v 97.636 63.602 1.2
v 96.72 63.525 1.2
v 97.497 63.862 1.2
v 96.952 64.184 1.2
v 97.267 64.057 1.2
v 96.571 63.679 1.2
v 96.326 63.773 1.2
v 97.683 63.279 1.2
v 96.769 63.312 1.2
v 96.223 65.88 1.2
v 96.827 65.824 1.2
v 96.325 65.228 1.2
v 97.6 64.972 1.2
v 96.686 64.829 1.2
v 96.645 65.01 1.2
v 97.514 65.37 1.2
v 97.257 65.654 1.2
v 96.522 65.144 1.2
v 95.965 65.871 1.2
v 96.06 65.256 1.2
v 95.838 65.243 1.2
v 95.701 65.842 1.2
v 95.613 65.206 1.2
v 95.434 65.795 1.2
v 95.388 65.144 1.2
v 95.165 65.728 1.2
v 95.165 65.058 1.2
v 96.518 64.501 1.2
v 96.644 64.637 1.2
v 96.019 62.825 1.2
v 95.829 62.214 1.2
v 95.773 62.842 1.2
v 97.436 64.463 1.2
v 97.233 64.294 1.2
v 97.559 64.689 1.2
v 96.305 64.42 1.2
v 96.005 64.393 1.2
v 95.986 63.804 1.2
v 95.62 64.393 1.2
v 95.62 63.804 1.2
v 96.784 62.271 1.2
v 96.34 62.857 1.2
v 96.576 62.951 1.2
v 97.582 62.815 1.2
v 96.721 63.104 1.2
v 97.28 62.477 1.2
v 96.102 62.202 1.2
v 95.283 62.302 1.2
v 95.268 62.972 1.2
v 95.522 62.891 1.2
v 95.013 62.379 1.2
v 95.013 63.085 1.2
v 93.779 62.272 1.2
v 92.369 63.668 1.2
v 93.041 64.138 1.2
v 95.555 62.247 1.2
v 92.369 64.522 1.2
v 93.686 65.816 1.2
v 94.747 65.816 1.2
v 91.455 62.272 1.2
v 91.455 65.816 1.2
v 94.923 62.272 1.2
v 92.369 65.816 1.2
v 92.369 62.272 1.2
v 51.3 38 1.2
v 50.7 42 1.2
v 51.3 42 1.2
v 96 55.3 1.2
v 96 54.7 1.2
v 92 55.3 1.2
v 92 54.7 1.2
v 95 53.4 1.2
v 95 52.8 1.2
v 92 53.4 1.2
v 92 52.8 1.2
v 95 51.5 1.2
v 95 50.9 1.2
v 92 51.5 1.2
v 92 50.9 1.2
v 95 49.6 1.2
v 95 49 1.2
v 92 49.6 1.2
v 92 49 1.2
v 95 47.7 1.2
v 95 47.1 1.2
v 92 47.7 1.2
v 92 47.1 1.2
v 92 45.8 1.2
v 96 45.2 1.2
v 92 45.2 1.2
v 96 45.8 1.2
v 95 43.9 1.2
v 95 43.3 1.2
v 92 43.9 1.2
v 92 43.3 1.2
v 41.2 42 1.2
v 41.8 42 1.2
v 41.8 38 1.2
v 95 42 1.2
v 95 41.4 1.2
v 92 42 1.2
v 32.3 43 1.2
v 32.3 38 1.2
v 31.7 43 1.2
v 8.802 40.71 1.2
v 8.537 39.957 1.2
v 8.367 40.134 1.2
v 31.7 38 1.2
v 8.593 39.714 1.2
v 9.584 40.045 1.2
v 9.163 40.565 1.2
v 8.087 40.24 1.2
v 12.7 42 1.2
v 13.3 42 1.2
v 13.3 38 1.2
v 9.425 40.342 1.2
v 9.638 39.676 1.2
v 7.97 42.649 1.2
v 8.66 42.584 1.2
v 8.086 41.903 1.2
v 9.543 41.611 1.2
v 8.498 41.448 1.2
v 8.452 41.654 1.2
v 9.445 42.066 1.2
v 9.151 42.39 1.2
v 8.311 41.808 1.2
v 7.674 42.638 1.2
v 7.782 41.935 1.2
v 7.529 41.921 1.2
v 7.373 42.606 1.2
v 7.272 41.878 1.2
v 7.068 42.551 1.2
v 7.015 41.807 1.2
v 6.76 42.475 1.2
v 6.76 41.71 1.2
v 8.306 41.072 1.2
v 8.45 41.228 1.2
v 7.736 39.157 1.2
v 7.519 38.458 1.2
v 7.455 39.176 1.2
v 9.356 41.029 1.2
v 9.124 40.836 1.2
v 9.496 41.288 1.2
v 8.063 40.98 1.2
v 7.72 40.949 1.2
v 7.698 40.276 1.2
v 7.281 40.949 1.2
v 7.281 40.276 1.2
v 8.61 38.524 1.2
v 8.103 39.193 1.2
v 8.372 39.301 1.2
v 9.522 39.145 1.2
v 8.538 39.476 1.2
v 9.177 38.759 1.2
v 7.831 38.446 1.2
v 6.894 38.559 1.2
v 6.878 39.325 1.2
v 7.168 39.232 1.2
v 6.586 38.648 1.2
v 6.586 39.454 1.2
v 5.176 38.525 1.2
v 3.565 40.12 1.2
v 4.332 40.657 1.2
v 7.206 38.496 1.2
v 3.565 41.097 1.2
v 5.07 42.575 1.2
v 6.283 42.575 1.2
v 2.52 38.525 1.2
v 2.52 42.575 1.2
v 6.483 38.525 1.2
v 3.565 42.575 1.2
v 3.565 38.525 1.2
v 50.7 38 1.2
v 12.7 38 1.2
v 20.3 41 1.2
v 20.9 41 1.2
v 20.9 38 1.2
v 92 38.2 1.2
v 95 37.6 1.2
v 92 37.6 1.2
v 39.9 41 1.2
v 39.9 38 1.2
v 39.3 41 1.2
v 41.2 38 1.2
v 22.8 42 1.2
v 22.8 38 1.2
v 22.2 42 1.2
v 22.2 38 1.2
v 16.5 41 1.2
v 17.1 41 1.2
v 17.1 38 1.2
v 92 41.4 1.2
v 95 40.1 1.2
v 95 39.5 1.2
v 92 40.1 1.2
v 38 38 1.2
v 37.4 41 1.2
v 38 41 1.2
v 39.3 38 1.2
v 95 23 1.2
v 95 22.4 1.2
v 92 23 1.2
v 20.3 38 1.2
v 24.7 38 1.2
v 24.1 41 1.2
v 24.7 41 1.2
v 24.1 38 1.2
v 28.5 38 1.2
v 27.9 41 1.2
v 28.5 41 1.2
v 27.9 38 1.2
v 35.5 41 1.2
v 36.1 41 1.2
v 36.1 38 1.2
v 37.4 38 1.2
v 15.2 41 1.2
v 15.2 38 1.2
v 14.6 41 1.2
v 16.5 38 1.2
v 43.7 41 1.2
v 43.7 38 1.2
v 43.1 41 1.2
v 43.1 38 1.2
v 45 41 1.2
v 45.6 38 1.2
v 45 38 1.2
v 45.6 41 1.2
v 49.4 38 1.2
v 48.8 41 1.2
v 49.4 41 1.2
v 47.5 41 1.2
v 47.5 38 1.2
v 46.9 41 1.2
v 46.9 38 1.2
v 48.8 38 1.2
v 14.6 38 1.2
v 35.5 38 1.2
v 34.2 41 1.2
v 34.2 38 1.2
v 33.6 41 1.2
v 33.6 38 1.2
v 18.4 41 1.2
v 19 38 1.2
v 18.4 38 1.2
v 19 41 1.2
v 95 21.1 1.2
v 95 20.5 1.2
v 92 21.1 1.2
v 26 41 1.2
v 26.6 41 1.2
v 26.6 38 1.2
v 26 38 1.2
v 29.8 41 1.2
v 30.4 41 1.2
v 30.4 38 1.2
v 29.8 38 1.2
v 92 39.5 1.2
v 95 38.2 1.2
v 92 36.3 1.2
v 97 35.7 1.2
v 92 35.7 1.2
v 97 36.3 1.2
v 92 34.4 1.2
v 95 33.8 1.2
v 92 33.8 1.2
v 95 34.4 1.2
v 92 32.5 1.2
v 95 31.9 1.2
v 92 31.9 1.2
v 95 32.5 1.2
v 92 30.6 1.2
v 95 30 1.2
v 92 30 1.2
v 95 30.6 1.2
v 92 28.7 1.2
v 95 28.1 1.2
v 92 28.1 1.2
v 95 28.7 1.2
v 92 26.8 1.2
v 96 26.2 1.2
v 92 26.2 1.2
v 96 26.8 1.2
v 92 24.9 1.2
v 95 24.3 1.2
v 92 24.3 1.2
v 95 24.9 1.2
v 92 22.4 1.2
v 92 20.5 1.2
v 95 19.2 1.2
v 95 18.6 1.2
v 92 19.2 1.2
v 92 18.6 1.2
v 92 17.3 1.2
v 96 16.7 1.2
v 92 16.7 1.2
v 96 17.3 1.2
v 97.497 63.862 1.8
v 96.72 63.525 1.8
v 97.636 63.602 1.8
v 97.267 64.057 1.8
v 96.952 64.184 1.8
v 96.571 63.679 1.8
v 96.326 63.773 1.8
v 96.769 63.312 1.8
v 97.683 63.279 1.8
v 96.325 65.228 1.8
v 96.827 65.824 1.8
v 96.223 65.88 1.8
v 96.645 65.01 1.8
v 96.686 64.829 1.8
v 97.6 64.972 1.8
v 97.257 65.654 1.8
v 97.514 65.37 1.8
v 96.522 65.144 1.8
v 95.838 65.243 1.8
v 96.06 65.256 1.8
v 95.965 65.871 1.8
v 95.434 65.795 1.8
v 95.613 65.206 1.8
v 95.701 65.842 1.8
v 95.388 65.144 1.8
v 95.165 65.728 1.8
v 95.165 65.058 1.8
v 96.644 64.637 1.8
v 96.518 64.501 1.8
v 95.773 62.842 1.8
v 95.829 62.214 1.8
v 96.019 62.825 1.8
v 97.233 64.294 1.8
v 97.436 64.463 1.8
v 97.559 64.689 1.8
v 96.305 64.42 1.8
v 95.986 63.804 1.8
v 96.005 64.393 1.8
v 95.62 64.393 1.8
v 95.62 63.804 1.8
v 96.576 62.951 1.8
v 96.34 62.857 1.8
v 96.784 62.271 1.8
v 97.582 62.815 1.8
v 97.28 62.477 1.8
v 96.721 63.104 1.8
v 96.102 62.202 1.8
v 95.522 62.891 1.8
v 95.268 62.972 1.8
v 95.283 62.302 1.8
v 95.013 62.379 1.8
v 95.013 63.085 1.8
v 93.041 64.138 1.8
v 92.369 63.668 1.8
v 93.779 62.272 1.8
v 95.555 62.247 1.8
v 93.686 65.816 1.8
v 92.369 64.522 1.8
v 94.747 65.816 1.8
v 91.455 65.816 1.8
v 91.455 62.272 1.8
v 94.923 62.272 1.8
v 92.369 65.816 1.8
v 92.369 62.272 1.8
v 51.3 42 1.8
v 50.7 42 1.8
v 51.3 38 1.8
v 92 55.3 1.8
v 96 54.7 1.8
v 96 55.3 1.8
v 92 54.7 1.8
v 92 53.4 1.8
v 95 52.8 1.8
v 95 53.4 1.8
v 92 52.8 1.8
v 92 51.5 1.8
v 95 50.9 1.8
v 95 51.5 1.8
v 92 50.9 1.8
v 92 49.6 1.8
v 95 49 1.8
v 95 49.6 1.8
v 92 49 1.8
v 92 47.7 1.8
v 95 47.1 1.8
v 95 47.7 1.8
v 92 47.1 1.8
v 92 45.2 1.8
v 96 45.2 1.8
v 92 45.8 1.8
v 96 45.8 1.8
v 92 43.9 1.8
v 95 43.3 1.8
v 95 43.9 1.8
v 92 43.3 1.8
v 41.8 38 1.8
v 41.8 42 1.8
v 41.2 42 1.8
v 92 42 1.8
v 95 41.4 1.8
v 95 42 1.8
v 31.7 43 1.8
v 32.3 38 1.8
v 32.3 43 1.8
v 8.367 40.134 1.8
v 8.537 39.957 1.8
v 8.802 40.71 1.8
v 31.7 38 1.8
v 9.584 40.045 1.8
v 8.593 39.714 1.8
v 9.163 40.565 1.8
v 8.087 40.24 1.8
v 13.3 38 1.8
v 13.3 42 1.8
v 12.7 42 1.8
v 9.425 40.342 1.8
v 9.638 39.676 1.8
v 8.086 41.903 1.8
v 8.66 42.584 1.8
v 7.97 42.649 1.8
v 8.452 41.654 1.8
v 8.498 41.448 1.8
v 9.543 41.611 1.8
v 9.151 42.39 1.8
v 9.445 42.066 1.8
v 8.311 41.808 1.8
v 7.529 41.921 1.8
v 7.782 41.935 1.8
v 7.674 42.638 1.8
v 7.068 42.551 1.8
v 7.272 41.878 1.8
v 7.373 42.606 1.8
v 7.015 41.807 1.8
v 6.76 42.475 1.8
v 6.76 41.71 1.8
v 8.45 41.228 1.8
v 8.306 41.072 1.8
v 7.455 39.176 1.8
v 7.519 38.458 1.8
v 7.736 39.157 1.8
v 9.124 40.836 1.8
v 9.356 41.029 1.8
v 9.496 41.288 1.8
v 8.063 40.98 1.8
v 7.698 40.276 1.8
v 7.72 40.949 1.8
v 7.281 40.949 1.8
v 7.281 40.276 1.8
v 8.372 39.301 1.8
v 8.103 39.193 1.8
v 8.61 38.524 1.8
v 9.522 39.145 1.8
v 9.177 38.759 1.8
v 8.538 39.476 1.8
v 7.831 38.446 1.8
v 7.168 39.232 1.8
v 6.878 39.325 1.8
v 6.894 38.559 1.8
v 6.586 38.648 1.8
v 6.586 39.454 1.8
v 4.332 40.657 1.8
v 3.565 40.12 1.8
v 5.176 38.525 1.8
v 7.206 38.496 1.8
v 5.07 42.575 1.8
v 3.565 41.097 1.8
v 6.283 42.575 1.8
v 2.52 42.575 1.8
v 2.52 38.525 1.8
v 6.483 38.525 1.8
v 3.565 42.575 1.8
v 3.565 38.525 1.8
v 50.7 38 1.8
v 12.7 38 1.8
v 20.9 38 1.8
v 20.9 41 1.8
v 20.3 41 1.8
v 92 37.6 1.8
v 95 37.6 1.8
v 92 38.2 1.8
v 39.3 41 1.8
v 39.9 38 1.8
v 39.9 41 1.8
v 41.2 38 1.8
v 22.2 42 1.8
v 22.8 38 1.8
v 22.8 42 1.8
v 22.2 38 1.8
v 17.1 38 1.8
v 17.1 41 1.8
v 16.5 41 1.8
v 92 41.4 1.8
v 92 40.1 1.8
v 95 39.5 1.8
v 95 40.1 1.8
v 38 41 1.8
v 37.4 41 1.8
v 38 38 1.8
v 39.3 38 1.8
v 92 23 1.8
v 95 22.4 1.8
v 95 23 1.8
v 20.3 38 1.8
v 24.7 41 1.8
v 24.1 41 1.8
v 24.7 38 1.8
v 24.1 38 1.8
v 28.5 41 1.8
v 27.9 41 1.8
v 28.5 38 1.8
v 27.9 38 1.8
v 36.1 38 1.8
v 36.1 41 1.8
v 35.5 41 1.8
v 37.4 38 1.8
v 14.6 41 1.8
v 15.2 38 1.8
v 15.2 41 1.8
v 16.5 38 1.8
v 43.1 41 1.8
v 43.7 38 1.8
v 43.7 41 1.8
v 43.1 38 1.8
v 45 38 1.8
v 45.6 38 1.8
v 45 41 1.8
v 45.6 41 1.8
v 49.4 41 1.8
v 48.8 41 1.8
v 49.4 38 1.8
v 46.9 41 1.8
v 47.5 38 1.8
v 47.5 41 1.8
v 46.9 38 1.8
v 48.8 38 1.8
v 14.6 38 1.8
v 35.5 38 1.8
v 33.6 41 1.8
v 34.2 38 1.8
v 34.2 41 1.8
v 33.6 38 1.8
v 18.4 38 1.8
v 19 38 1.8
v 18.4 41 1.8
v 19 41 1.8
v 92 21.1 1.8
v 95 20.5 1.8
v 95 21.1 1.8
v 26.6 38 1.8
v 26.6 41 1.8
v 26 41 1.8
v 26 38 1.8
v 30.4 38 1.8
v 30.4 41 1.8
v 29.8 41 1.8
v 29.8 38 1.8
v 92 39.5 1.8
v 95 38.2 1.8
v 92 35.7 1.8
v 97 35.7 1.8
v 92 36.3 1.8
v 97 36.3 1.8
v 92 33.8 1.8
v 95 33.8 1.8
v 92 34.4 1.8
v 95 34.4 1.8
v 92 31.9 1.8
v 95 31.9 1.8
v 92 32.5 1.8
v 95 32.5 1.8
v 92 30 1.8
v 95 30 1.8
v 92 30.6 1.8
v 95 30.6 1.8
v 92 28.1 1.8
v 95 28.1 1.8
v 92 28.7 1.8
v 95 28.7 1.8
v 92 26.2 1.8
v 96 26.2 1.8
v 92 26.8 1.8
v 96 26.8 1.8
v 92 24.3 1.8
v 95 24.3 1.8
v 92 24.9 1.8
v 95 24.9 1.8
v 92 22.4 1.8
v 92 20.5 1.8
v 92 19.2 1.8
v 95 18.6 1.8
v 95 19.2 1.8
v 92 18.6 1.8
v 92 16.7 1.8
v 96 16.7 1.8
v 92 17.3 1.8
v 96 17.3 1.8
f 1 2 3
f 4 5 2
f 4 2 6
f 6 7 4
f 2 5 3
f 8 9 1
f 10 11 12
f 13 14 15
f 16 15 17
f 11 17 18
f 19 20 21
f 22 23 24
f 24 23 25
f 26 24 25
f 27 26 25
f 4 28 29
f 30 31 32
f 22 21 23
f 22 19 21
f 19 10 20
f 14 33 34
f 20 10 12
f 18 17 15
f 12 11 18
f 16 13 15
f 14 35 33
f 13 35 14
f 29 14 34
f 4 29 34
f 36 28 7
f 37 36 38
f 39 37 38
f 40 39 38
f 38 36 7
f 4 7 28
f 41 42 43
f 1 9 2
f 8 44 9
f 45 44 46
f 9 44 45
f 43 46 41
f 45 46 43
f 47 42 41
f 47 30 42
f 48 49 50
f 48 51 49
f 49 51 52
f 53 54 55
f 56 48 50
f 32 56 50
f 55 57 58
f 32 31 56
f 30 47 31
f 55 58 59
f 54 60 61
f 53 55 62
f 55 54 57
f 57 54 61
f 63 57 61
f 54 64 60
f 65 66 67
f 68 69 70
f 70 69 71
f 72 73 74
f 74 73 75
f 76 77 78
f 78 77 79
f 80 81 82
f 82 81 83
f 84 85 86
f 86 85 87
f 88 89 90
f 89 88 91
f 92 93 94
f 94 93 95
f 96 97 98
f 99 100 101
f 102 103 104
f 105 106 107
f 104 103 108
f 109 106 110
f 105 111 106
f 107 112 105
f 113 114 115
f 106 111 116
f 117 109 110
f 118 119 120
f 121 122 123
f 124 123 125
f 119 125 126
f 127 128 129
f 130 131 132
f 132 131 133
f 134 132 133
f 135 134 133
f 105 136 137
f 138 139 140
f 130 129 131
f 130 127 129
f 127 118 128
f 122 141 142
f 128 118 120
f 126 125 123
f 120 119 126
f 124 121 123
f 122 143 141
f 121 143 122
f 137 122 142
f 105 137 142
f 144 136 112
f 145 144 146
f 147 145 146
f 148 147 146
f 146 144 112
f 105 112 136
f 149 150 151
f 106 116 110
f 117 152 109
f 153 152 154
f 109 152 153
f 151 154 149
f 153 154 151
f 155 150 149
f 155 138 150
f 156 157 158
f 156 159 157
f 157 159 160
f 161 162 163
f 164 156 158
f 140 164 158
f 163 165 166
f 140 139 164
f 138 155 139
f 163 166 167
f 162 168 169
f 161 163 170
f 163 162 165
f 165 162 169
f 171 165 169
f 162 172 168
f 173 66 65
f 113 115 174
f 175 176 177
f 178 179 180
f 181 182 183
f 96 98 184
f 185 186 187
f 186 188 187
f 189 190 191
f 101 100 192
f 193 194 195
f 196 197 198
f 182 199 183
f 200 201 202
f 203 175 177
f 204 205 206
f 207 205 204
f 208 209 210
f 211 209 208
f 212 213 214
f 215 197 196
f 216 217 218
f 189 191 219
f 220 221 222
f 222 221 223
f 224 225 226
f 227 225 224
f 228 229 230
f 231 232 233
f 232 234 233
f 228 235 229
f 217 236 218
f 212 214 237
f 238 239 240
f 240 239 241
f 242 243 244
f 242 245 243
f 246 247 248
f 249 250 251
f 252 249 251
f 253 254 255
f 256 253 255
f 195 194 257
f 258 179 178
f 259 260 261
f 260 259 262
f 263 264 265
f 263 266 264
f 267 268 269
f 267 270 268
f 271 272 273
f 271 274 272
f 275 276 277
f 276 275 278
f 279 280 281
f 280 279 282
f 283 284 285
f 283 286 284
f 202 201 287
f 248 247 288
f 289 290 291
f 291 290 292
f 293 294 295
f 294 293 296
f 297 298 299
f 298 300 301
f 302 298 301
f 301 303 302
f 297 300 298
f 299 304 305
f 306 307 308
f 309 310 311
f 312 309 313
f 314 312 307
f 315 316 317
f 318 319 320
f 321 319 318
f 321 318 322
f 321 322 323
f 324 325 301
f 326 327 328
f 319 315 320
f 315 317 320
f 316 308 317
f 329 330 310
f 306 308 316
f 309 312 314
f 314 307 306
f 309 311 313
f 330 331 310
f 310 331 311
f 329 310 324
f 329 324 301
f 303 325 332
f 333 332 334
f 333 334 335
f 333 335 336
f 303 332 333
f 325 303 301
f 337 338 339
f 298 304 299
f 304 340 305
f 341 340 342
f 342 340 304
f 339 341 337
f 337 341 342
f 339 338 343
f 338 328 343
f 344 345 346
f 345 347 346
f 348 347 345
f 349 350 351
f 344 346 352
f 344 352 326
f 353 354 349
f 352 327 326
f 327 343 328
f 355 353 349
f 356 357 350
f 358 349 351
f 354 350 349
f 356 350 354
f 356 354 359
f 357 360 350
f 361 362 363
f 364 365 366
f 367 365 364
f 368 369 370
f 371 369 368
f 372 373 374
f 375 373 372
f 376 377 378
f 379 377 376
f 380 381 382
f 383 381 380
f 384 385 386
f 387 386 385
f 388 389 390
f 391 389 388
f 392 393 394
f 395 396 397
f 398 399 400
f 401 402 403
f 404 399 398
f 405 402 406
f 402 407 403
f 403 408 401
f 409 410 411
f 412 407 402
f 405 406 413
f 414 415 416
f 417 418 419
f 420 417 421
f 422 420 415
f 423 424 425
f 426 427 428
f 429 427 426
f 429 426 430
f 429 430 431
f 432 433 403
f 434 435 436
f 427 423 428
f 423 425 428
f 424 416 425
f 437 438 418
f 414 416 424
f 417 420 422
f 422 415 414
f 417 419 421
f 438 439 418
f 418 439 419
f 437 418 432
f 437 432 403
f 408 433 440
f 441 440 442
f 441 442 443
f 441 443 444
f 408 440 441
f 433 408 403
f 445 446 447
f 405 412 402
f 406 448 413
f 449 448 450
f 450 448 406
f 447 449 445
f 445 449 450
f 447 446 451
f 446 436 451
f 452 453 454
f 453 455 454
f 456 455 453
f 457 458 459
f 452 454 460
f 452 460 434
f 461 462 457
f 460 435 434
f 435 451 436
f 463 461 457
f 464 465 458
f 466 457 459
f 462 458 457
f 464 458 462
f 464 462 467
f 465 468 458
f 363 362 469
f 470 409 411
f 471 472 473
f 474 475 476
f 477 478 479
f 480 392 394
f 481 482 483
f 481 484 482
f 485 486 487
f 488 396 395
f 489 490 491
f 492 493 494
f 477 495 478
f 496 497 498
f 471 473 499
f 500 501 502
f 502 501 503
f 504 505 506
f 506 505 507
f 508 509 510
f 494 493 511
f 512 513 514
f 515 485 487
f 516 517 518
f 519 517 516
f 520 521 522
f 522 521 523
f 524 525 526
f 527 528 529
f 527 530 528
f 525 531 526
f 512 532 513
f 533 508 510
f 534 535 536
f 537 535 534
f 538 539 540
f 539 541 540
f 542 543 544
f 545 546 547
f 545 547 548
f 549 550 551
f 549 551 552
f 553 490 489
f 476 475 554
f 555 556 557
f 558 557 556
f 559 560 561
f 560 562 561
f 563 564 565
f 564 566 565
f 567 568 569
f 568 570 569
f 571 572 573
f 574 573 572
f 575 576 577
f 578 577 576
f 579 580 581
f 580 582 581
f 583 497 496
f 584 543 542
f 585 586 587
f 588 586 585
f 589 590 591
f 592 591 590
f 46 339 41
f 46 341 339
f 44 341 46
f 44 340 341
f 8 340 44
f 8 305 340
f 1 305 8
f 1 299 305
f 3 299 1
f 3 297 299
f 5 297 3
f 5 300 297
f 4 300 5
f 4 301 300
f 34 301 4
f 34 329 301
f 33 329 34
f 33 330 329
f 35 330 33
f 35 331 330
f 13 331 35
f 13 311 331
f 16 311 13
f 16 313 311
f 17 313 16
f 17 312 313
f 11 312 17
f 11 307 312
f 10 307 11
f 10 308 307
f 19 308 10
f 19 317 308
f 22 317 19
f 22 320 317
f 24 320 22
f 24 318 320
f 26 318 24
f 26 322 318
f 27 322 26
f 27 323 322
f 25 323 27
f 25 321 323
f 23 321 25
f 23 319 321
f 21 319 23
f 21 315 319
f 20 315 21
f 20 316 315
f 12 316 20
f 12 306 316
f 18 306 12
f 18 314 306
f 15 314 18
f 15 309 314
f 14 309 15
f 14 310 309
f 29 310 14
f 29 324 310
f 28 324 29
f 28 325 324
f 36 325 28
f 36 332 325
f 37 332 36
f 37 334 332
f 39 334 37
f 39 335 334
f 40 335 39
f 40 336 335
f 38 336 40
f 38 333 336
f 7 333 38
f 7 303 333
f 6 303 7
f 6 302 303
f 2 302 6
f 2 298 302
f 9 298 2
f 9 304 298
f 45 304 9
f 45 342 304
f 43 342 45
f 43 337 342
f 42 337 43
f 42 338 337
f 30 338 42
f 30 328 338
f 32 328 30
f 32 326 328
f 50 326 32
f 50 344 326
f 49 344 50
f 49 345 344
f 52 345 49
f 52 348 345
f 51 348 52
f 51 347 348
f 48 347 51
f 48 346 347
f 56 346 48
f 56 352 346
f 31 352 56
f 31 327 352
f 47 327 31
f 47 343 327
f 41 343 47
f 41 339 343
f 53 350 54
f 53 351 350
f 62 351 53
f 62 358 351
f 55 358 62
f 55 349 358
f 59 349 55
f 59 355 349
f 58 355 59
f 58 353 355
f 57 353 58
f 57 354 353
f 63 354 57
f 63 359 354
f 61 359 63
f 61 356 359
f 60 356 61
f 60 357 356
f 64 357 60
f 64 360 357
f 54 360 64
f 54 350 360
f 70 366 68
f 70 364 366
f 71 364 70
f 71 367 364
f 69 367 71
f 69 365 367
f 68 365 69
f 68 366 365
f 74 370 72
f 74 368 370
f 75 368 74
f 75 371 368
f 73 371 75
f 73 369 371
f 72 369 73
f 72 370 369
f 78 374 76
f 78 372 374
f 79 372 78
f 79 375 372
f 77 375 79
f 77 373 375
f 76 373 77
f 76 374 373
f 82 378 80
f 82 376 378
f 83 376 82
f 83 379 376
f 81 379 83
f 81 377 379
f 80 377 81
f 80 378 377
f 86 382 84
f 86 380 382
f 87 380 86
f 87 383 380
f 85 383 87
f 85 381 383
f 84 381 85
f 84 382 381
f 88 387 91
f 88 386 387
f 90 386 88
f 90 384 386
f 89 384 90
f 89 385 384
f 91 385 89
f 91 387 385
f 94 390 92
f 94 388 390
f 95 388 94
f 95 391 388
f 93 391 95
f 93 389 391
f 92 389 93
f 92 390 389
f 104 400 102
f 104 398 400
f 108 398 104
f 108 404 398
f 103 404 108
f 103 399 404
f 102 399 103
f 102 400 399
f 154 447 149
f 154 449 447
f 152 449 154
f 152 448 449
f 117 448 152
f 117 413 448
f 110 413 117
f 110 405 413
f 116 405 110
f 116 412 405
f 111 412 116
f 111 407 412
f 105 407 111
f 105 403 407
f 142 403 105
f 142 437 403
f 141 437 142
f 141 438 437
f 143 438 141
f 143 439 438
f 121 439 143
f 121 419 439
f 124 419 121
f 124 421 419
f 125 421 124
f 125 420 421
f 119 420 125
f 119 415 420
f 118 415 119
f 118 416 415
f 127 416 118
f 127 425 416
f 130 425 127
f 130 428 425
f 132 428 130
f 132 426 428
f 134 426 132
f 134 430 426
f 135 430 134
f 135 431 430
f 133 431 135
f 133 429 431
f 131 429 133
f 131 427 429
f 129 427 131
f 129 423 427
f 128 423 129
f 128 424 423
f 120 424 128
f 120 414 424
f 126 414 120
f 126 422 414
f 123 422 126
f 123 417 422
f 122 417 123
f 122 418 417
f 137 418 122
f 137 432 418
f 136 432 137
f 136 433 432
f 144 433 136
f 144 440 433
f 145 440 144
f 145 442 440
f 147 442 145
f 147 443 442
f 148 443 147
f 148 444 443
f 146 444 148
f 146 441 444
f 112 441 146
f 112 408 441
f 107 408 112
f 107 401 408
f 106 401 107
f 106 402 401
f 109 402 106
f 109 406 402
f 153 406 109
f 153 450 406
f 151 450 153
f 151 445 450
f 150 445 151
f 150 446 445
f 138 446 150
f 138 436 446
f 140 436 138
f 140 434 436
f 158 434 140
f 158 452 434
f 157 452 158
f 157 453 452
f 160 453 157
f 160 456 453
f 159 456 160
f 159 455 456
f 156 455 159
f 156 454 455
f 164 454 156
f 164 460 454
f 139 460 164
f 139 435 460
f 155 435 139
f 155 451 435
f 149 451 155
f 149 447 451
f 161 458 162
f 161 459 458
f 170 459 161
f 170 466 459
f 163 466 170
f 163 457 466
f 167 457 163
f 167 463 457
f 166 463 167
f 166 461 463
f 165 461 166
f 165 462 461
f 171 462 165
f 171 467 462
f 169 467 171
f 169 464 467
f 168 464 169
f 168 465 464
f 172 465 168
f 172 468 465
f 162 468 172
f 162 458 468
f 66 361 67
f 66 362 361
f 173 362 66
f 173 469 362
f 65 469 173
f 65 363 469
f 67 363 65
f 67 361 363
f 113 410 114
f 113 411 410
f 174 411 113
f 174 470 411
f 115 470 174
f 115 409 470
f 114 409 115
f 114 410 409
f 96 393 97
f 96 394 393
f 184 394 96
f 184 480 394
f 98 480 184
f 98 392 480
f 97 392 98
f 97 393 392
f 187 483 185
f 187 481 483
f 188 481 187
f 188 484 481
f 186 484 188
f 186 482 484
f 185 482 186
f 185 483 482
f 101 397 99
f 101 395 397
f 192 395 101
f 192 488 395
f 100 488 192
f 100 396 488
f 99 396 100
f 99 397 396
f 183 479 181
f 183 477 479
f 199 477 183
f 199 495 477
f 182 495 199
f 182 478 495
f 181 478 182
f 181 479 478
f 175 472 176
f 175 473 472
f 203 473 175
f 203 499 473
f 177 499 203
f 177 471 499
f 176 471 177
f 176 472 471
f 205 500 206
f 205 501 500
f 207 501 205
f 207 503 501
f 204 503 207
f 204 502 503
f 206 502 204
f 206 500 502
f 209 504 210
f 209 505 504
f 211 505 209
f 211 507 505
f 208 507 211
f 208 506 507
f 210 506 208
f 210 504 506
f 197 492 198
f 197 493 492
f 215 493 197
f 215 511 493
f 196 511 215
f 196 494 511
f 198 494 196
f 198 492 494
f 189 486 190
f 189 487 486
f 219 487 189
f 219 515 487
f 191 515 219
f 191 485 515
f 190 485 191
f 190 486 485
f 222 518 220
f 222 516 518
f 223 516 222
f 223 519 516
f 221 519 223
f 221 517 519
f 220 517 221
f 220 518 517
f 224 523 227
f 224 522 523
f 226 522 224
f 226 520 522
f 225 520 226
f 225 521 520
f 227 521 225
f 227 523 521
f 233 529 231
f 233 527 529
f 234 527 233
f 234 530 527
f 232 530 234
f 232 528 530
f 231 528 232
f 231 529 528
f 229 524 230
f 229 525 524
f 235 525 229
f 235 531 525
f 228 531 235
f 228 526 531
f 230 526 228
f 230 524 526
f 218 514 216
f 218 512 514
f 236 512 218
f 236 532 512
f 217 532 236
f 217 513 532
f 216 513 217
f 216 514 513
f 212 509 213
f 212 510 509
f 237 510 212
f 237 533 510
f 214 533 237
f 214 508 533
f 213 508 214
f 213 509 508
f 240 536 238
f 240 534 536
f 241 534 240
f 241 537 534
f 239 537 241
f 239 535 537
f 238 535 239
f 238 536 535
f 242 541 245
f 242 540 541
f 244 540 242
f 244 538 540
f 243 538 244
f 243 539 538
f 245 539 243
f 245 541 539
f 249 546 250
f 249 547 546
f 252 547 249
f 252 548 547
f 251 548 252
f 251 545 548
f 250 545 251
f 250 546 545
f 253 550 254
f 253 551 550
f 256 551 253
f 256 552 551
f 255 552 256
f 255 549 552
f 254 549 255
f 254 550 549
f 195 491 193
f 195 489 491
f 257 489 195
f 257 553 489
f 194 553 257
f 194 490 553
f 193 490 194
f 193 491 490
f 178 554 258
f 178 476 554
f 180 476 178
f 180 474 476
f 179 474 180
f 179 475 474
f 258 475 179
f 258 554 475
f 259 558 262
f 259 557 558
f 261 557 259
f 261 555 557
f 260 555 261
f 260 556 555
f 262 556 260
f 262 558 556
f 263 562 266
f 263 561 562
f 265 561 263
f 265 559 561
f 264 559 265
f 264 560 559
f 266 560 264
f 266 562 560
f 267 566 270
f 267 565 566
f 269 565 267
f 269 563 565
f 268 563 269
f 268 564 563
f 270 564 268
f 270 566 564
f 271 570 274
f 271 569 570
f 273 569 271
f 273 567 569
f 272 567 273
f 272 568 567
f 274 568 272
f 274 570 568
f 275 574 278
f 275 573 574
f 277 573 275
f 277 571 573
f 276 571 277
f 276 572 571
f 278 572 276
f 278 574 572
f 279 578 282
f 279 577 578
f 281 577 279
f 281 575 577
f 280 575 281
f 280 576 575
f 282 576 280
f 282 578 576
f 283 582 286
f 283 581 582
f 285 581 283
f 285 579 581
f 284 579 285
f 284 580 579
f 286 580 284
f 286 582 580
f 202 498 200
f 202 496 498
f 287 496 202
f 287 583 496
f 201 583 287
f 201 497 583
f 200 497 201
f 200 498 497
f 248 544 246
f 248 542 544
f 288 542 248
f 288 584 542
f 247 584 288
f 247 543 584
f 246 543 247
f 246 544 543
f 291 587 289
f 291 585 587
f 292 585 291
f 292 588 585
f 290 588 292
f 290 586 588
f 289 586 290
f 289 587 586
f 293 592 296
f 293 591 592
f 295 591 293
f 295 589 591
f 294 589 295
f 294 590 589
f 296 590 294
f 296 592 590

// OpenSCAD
// file: versatz.scad
// Kalibrierung 3 – Kopf-Versatz (Vier-Kopf-Passermarke). Gemeinsame Geometrie für versatz_k1…k4.scad.
// Grundplatte + Hauptskalen = Kopf 1. Je Kopf 2–4 ein Nonius in X (Zeilen) und in Y (Spalten) + Beschriftung.
// Hauptskala Teilung 2,0 mm, Nonius 1,9 mm → Ablesung 0,1 mm, Bereich ±1,0 mm (Index −10…+10).
// Die Strichreihen von Kopf 1 und Kopf n stoßen an einer gemeinsamen Linie aneinander (nie überlappend).
platte = [112, 80, 1.2];    // Grundplatte (6 Schichten à 0,2)
erhaben = 0.6;              // Strich- und Schrifthöhe über der Platte
strich_b = 0.6;             // Strichbreite (≥ 1,5 × Düse)
strich_l = 3.0;             // Strichlänge je Reihe
haupt = 2.0; nonius = 1.9; n = 10;
schrift = "DejaVu Sans:style=Bold";
zeilen_y = [14, 38, 62];    // X-Nonien: Grenzlinie bei diesem y (Kopf 1 darunter, Kopf n darüber)
x_mitte = 32;
spalten_x = [78, 92, 106];  // Y-Nonien: Grenzlinie bei diesem x (Kopf 1 links, Kopf n rechts)
y_mitte = 36;

function _lang(i) = (i == 0) ? 2.0 : (i % 5 == 0) ? 1.0 : 0;   // längere Striche bei 0, ±5, ±10

module _striche_x(teil, aussen) {   // Striche senkrecht, entlang X; aussen = +1 nach oben, −1 nach unten
  for (i = [-n:n]) let(l = strich_l + _lang(i))
    translate([x_mitte + i*teil - strich_b/2, aussen > 0 ? 0 : -l]) square([strich_b, l]);
}
module _striche_y(teil, aussen) {
  for (i = [-n:n]) let(l = strich_l + _lang(i))
    translate([aussen > 0 ? 0 : -l, y_mitte + i*teil - strich_b/2]) square([l, strich_b]);
}
module _beschr(t, s=4) text(t, size=s, font=schrift, halign="center", valign="center");

module versatz(kopf) {
  if (kopf == 1) {
    cube(platte);
    translate([0,0,platte[2]-0.01]) linear_extrude(erhaben+0.01) {
      for (y = zeilen_y) translate([0, y]) _striche_x(haupt, -1);
      for (x = spalten_x) translate([x, 0]) _striche_y(haupt, -1);
      translate([x_mitte + n*haupt + 4.5, zeilen_y[0] - 6]) _beschr("+X", 3);
      translate([spalten_x[0] - 6, y_mitte + n*haupt + 4.5]) _beschr("+Y", 3);
      translate([8, 75]) _beschr("K1", 4);
    }
  } else {
    k = kopf - 2;
    translate([0,0,platte[2]]) linear_extrude(erhaben) {
      translate([0, zeilen_y[k]]) _striche_x(nonius, +1);
      translate([spalten_x[k], 0]) _striche_y(nonius, +1);
      translate([6, zeilen_y[k] + 2.5]) _beschr(str("K", kopf), 4);
      translate([spalten_x[k] + 2.5, y_mitte + n*haupt + 8]) _beschr(str("K", kopf), 3.5);
    }
  }
}
// main file
// Kalibrierung 3 – Kopf-Versatz, Farbkörper für Kopf 3 (gleiche Koordinaten wie die anderen versatz_k*.scad)
use <versatz.scad>
versatz(3);
